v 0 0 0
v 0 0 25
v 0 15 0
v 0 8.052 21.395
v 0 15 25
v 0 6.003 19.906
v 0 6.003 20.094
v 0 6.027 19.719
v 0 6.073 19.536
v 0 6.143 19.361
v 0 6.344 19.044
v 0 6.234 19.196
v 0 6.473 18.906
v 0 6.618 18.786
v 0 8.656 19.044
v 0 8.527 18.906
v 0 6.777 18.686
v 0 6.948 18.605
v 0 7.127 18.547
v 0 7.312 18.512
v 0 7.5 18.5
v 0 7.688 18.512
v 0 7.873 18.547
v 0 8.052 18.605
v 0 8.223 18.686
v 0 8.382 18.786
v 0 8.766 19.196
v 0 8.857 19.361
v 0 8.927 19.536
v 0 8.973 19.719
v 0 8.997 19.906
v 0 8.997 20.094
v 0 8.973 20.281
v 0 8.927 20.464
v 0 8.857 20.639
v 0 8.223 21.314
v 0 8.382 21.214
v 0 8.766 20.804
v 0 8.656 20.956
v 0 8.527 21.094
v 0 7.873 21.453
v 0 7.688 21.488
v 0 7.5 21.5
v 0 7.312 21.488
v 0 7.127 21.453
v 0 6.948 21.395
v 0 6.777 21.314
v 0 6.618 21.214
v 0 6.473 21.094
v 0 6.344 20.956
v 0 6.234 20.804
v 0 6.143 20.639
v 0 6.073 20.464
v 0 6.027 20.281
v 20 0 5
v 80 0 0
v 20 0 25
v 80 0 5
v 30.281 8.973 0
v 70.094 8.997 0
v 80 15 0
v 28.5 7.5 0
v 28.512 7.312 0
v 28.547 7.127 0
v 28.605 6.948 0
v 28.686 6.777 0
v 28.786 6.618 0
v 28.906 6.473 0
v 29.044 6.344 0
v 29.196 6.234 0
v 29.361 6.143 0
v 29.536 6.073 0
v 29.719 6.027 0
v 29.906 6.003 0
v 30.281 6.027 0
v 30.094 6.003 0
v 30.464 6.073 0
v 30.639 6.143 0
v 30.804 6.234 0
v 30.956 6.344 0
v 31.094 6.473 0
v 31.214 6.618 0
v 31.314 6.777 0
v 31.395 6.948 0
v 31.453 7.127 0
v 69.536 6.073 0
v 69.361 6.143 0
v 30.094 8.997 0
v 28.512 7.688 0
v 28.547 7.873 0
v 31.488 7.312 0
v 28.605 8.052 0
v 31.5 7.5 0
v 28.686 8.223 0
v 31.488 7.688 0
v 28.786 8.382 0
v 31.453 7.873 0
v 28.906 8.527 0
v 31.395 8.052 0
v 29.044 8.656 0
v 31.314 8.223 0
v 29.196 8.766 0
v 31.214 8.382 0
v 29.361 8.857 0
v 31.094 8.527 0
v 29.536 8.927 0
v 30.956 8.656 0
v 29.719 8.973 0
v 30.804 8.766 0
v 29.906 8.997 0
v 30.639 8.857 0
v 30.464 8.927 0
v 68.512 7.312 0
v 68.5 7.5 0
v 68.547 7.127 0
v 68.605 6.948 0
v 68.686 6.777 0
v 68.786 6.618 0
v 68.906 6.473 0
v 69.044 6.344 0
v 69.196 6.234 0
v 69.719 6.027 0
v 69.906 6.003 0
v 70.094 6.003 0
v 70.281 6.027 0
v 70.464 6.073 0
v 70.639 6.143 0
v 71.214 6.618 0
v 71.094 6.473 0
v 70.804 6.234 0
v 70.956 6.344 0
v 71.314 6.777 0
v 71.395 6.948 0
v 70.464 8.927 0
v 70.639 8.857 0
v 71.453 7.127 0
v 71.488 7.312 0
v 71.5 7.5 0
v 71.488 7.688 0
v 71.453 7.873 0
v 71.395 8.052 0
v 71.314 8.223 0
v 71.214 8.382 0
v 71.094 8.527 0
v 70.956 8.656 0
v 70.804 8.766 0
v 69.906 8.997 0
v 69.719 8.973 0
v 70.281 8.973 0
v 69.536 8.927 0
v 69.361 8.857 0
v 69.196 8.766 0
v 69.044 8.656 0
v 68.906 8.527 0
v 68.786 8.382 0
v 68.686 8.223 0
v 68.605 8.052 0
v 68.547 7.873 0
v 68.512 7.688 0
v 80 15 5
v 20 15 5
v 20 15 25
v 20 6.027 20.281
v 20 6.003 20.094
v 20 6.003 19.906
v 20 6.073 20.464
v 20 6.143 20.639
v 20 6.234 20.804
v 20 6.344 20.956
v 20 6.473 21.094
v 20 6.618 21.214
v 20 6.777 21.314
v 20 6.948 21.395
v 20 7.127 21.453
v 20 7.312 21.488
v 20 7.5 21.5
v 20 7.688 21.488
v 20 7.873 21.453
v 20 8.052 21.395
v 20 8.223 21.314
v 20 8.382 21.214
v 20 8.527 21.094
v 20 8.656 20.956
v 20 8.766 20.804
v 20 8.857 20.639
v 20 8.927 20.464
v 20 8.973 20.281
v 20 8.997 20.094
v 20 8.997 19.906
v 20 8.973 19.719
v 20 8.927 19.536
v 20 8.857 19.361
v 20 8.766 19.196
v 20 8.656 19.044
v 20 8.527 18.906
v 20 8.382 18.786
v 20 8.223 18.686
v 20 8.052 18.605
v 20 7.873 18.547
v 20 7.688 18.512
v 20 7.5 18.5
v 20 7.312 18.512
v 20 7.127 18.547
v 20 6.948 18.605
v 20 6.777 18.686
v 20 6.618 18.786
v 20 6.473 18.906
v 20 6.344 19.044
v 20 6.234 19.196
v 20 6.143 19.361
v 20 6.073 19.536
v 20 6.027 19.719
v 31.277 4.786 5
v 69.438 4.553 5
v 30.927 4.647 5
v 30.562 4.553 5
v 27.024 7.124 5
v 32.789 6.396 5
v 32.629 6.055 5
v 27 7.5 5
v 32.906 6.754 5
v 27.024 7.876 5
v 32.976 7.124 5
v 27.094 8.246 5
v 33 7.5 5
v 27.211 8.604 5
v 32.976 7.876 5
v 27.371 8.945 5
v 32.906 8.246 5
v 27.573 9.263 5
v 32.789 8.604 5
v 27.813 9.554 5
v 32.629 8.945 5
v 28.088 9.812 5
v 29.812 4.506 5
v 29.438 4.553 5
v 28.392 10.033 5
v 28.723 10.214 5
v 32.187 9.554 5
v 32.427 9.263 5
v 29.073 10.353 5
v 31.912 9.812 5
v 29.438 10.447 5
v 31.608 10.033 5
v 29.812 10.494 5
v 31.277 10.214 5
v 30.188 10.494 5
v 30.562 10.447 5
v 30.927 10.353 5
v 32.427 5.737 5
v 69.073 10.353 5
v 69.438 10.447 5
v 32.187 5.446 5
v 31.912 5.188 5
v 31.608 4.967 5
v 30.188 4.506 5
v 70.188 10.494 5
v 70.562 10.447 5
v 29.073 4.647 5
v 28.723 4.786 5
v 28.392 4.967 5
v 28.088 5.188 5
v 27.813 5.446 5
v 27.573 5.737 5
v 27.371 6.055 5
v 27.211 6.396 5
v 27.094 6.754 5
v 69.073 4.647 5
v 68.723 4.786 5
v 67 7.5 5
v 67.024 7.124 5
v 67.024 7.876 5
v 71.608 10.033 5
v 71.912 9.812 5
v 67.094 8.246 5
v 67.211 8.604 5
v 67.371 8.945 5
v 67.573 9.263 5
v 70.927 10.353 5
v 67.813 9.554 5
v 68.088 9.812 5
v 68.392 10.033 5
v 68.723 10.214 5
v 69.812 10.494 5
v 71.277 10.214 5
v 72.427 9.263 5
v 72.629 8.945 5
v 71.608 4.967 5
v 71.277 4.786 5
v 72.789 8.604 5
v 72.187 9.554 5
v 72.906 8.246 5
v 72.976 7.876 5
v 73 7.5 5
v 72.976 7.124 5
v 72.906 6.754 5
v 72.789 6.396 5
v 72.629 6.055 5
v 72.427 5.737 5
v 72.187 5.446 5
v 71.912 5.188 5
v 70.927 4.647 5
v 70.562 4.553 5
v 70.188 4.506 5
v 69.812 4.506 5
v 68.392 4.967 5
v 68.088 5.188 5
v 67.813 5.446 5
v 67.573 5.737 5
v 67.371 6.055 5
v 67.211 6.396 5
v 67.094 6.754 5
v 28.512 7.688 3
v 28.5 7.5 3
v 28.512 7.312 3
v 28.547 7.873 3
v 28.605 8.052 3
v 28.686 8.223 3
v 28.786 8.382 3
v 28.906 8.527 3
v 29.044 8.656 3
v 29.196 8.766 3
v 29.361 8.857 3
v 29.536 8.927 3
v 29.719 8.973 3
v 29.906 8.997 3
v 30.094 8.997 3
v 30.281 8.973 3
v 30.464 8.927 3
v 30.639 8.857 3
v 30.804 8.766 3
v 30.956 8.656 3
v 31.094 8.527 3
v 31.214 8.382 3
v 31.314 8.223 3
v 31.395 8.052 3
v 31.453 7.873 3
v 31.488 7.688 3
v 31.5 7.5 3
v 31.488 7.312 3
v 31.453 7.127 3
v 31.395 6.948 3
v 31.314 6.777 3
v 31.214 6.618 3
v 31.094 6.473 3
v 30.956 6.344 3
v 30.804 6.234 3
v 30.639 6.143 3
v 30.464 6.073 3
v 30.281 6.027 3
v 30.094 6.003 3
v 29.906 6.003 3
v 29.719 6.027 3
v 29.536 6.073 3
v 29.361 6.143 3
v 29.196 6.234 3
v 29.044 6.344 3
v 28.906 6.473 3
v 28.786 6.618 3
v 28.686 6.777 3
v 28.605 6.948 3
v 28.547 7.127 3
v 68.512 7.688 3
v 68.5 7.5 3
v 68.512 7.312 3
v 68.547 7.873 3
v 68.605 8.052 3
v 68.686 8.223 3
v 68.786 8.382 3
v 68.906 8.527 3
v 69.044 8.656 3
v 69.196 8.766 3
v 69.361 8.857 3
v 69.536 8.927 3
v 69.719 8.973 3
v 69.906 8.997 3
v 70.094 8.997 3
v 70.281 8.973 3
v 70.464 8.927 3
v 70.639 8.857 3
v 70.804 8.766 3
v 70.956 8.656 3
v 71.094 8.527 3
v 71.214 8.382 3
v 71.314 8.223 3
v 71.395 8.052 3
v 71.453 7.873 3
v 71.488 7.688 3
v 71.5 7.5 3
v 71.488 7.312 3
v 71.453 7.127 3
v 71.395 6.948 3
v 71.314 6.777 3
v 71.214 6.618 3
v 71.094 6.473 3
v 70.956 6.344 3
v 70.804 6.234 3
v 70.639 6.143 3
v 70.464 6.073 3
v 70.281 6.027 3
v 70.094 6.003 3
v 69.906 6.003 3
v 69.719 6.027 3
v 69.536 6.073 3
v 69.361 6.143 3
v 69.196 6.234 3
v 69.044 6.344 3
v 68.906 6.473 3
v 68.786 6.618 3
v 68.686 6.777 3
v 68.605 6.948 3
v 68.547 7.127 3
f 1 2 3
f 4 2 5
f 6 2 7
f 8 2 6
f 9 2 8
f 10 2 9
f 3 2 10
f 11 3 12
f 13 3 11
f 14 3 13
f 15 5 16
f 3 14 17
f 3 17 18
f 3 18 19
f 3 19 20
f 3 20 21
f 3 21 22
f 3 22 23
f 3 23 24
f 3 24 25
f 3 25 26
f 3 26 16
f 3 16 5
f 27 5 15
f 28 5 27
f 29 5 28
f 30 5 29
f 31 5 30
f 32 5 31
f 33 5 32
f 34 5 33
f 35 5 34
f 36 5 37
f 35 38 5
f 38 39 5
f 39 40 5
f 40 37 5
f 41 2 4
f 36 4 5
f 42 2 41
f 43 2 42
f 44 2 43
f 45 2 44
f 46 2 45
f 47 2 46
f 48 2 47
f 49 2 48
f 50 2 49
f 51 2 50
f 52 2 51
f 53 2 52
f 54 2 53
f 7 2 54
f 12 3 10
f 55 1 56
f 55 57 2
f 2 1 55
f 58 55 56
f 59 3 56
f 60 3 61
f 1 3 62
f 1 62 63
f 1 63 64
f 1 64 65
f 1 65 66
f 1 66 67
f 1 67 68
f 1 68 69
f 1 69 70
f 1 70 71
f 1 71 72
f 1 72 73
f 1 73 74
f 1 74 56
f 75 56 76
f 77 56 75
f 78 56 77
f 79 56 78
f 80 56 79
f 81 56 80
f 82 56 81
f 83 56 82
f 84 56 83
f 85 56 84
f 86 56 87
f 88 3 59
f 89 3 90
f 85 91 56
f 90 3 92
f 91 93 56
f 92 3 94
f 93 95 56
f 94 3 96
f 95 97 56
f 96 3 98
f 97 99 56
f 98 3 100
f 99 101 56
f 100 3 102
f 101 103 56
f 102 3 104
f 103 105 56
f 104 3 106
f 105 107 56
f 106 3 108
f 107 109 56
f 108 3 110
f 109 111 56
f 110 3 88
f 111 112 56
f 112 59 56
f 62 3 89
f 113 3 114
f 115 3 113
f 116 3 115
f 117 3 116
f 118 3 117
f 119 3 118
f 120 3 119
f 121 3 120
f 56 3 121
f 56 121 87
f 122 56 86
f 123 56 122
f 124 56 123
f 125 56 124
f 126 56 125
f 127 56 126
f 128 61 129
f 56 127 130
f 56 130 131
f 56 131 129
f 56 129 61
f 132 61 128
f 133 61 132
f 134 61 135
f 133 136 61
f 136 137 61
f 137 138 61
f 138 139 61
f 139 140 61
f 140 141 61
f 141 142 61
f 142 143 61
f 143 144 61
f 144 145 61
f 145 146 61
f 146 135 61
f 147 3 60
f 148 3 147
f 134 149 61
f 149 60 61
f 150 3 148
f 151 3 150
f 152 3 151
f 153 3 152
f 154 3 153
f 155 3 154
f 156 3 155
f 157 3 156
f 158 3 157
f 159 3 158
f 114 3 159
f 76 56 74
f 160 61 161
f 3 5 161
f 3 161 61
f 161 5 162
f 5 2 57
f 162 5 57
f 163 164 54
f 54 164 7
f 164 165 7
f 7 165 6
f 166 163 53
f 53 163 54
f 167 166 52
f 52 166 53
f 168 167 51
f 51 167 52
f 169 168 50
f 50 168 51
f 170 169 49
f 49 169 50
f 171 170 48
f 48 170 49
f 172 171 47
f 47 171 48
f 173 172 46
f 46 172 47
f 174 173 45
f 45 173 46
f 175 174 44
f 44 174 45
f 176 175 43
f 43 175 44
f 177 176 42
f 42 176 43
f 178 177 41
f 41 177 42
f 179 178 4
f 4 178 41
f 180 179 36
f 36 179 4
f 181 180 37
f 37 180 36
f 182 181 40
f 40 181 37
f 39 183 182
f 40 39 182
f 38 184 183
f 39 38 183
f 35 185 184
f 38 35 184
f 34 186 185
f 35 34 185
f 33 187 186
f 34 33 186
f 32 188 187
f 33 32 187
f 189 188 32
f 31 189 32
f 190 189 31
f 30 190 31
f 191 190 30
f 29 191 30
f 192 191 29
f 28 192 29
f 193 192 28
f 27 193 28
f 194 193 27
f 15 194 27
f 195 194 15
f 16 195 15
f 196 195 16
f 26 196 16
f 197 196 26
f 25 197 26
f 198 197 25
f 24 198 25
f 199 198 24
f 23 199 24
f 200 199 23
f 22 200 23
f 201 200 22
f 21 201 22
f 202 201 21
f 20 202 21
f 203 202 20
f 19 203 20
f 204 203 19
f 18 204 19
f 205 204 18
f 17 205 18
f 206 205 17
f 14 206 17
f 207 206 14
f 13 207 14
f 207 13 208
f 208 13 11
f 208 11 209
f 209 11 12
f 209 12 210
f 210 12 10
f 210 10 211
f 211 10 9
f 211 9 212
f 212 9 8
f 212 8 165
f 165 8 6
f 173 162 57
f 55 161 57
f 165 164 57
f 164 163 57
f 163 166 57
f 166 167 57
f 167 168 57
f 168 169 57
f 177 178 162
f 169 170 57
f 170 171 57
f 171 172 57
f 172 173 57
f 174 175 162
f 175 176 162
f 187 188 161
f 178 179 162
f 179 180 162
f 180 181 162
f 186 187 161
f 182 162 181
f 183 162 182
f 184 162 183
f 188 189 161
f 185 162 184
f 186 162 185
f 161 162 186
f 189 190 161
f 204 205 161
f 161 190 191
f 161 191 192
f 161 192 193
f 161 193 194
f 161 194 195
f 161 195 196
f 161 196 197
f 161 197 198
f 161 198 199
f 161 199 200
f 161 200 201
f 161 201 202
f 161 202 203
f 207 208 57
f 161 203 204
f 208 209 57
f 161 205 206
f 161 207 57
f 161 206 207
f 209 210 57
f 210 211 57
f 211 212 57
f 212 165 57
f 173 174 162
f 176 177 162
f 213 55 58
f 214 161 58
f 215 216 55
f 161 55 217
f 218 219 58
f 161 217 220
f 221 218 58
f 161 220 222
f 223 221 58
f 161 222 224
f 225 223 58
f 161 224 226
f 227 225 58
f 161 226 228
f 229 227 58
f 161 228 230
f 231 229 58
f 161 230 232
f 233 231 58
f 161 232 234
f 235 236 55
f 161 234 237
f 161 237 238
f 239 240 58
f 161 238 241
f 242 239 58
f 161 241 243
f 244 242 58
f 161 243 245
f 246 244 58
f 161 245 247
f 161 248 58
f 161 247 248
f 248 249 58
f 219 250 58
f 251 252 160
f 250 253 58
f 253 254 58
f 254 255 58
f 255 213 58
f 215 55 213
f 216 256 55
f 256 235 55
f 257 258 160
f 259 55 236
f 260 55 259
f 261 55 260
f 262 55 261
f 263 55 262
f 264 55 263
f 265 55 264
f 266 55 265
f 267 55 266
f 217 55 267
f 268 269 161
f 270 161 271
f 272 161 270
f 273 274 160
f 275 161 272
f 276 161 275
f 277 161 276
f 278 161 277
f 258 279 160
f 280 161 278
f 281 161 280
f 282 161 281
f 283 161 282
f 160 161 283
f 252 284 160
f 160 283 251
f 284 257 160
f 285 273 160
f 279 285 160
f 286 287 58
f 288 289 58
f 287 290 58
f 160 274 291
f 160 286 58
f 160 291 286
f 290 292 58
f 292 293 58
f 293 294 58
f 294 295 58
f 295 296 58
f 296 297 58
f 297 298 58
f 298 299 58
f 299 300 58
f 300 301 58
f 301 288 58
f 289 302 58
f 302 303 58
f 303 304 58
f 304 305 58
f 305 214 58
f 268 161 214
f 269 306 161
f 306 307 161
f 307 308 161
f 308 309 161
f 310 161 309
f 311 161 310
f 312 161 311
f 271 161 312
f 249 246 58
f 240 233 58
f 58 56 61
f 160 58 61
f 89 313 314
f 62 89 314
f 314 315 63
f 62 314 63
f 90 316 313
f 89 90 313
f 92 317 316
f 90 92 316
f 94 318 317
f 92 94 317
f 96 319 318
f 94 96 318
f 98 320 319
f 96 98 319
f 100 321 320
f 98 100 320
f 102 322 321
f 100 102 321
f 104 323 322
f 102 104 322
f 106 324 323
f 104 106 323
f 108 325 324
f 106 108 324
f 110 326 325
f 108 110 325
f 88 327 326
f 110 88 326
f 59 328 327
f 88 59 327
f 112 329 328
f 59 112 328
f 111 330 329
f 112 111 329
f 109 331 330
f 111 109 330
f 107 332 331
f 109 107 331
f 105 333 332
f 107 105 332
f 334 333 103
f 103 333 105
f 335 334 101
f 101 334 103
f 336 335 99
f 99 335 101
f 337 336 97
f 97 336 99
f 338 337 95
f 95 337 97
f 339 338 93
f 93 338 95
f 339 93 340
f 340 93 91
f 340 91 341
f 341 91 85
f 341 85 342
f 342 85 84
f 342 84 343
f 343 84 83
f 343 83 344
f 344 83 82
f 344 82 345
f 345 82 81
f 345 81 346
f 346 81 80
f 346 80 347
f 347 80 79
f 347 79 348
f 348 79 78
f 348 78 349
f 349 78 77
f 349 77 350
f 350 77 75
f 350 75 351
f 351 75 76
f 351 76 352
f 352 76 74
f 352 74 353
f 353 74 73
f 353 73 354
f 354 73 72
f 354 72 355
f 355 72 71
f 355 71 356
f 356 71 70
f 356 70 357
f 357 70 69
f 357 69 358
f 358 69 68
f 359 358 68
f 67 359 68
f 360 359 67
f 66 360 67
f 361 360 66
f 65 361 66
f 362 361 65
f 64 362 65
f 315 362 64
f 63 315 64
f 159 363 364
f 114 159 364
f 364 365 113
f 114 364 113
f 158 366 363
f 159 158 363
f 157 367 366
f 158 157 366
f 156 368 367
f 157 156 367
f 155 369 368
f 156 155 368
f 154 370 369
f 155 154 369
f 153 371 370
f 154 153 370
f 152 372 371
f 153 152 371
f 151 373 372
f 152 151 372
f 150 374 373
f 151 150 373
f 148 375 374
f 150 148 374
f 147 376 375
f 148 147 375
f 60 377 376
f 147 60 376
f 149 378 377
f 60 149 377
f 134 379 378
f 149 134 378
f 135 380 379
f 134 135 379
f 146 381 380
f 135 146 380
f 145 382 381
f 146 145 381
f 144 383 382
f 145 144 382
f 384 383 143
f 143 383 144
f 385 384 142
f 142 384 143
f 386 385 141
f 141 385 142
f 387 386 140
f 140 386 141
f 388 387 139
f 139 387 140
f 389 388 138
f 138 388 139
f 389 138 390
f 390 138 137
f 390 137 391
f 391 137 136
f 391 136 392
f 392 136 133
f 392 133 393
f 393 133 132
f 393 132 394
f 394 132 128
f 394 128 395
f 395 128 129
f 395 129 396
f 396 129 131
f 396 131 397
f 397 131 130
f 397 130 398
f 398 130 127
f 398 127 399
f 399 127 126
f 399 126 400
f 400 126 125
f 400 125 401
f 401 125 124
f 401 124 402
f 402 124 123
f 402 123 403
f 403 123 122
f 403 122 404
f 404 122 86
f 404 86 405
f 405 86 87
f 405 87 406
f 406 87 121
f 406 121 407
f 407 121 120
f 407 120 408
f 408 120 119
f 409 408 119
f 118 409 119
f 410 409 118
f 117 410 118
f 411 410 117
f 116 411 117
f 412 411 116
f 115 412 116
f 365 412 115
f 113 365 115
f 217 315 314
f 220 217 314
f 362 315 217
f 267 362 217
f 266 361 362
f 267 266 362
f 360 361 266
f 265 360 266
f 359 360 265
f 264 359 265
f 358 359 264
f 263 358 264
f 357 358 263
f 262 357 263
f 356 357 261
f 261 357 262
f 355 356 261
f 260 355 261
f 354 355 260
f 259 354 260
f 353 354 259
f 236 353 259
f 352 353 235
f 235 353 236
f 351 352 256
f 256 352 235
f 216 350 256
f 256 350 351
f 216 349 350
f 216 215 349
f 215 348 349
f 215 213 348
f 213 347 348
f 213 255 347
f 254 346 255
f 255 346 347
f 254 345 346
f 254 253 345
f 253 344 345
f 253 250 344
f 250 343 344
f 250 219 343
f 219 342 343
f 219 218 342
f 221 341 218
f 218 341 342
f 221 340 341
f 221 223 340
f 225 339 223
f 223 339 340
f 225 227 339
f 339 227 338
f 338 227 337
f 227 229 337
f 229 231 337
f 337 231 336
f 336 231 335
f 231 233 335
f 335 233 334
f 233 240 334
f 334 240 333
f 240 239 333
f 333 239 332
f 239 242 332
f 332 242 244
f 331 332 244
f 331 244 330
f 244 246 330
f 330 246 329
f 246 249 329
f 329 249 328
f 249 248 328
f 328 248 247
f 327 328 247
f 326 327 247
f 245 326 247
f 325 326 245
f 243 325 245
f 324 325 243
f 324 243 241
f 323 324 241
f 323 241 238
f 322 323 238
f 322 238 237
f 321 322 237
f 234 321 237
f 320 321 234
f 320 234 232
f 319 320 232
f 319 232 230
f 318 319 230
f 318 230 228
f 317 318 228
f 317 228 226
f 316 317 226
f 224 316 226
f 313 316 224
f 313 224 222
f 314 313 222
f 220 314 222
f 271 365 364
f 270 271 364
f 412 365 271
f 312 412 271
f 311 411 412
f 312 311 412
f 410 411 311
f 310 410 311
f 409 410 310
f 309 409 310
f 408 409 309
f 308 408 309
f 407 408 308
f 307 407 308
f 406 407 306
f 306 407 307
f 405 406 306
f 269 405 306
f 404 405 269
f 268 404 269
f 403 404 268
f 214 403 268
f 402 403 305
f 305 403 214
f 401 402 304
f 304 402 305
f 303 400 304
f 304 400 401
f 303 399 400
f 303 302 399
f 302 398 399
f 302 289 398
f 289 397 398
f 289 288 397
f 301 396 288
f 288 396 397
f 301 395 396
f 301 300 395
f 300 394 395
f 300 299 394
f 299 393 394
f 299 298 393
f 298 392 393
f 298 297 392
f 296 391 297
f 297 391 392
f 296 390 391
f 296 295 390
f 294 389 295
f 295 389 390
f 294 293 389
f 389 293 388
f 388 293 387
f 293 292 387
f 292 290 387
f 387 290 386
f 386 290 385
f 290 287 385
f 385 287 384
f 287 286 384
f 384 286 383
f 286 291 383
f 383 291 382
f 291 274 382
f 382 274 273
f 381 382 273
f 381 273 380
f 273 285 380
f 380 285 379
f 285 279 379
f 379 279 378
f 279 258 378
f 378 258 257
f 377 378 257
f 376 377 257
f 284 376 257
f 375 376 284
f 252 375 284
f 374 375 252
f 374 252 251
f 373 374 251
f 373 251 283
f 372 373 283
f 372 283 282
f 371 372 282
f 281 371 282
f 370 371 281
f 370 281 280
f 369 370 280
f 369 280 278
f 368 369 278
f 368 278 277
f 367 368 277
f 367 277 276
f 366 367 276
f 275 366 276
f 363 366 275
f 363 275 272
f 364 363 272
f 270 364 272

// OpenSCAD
r_m3=1.5;
r_tete_m3=3;
ep1=25;
ep2=5;

module endstop_x(){
	difference(){
		cube([80,15,ep1]);

		//extrusion générale
		translate([20,-5,ep2]){cube([80,30,35]);}

		//trous pour vis de réglage
		translate([-5,7.5,20]){rotate([0,90,0])cylinder(h = 50, r=r_m3, $fn=50);}


	//trous de vissage
		translate([30,7.5,ep2-2]){cylinder(h = 2, r1 = r_m3, r2=r_tete_m3, $fn=50);}
		translate([30,7.5,-5]){cylinder(h = 30, r = r_m3, $fn=50);}

		translate([70,7.5,ep2-2]){cylinder(h = 2, r1 = r_m3, r2=r_tete_m3, $fn=50);}
		translate([70,7.5,-5]){cylinder(h = 30, r = r_m3, $fn=50);}

		

	}
}

endstop_x();
